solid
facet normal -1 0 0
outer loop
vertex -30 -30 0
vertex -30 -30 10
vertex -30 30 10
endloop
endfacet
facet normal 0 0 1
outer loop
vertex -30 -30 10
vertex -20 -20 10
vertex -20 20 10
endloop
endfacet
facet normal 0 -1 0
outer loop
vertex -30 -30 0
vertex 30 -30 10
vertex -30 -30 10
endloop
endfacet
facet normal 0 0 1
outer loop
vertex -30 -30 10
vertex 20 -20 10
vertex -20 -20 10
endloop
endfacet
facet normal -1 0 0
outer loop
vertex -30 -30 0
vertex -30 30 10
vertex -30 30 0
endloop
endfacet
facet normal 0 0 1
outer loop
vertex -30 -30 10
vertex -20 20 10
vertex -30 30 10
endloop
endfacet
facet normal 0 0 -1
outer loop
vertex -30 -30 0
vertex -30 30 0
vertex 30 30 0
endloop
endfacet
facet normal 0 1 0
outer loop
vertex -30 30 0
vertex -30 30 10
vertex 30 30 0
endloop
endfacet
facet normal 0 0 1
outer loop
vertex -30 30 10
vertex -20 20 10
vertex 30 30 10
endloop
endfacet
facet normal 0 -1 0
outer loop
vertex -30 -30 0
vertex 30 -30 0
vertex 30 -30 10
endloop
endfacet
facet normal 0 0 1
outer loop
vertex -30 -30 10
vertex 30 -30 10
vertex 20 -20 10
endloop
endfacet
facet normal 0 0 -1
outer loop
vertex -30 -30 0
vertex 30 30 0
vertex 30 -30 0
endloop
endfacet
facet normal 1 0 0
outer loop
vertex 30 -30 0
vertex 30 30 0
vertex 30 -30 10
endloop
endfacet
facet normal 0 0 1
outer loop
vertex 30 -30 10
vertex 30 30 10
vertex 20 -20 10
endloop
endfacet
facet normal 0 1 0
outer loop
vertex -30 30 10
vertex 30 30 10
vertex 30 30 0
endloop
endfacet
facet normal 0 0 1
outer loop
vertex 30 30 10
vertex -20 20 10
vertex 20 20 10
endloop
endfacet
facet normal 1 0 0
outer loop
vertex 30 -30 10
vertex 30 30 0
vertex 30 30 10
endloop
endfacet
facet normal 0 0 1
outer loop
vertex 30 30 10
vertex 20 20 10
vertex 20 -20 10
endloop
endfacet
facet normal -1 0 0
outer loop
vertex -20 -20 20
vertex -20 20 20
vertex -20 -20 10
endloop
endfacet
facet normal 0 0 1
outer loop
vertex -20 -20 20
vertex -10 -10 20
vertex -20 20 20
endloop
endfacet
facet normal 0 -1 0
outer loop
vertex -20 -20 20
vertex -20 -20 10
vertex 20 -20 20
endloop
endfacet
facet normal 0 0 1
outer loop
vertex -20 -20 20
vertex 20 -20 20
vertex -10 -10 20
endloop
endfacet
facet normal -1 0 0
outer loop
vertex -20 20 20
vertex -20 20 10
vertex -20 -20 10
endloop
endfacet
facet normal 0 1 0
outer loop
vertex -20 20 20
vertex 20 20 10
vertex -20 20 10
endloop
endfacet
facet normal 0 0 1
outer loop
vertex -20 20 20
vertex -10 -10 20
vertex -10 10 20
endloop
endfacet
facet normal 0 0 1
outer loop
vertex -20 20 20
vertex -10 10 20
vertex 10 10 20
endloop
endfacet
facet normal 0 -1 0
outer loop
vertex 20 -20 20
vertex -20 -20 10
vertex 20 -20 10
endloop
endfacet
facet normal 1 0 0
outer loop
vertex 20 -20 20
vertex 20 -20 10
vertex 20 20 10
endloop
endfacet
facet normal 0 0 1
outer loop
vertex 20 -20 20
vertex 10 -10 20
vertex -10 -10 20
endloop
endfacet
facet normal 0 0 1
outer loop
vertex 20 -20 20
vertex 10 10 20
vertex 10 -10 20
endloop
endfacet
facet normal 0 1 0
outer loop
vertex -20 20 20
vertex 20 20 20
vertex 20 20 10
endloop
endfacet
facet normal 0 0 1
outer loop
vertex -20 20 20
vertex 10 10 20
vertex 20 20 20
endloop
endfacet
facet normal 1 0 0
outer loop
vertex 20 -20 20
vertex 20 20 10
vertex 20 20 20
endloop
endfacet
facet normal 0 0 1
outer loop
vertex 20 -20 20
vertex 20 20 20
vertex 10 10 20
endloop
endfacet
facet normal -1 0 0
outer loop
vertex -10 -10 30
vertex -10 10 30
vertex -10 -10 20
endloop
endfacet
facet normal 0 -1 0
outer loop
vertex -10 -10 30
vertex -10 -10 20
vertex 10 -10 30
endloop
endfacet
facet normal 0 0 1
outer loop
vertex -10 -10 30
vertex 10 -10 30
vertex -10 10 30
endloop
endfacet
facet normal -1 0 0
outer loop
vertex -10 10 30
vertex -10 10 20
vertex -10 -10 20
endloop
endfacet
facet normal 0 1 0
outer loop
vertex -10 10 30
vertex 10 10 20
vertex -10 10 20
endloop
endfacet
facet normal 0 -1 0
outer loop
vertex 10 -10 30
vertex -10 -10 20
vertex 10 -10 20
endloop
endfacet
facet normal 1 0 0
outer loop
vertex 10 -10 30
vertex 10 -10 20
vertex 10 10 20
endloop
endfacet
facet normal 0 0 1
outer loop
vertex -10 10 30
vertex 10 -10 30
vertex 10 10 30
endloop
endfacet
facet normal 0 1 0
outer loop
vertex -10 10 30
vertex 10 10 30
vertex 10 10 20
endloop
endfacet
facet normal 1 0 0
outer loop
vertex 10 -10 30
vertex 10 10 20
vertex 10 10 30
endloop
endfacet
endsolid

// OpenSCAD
// Parameters
h = 10;

// Single centered layer helper
module layer(size, z) {
    translate([-size/2, -size/2, z]) cube([size, size, h]);
}

// Layers
layer(60, 0);
layer(40, h);
layer(20, 2*h);
